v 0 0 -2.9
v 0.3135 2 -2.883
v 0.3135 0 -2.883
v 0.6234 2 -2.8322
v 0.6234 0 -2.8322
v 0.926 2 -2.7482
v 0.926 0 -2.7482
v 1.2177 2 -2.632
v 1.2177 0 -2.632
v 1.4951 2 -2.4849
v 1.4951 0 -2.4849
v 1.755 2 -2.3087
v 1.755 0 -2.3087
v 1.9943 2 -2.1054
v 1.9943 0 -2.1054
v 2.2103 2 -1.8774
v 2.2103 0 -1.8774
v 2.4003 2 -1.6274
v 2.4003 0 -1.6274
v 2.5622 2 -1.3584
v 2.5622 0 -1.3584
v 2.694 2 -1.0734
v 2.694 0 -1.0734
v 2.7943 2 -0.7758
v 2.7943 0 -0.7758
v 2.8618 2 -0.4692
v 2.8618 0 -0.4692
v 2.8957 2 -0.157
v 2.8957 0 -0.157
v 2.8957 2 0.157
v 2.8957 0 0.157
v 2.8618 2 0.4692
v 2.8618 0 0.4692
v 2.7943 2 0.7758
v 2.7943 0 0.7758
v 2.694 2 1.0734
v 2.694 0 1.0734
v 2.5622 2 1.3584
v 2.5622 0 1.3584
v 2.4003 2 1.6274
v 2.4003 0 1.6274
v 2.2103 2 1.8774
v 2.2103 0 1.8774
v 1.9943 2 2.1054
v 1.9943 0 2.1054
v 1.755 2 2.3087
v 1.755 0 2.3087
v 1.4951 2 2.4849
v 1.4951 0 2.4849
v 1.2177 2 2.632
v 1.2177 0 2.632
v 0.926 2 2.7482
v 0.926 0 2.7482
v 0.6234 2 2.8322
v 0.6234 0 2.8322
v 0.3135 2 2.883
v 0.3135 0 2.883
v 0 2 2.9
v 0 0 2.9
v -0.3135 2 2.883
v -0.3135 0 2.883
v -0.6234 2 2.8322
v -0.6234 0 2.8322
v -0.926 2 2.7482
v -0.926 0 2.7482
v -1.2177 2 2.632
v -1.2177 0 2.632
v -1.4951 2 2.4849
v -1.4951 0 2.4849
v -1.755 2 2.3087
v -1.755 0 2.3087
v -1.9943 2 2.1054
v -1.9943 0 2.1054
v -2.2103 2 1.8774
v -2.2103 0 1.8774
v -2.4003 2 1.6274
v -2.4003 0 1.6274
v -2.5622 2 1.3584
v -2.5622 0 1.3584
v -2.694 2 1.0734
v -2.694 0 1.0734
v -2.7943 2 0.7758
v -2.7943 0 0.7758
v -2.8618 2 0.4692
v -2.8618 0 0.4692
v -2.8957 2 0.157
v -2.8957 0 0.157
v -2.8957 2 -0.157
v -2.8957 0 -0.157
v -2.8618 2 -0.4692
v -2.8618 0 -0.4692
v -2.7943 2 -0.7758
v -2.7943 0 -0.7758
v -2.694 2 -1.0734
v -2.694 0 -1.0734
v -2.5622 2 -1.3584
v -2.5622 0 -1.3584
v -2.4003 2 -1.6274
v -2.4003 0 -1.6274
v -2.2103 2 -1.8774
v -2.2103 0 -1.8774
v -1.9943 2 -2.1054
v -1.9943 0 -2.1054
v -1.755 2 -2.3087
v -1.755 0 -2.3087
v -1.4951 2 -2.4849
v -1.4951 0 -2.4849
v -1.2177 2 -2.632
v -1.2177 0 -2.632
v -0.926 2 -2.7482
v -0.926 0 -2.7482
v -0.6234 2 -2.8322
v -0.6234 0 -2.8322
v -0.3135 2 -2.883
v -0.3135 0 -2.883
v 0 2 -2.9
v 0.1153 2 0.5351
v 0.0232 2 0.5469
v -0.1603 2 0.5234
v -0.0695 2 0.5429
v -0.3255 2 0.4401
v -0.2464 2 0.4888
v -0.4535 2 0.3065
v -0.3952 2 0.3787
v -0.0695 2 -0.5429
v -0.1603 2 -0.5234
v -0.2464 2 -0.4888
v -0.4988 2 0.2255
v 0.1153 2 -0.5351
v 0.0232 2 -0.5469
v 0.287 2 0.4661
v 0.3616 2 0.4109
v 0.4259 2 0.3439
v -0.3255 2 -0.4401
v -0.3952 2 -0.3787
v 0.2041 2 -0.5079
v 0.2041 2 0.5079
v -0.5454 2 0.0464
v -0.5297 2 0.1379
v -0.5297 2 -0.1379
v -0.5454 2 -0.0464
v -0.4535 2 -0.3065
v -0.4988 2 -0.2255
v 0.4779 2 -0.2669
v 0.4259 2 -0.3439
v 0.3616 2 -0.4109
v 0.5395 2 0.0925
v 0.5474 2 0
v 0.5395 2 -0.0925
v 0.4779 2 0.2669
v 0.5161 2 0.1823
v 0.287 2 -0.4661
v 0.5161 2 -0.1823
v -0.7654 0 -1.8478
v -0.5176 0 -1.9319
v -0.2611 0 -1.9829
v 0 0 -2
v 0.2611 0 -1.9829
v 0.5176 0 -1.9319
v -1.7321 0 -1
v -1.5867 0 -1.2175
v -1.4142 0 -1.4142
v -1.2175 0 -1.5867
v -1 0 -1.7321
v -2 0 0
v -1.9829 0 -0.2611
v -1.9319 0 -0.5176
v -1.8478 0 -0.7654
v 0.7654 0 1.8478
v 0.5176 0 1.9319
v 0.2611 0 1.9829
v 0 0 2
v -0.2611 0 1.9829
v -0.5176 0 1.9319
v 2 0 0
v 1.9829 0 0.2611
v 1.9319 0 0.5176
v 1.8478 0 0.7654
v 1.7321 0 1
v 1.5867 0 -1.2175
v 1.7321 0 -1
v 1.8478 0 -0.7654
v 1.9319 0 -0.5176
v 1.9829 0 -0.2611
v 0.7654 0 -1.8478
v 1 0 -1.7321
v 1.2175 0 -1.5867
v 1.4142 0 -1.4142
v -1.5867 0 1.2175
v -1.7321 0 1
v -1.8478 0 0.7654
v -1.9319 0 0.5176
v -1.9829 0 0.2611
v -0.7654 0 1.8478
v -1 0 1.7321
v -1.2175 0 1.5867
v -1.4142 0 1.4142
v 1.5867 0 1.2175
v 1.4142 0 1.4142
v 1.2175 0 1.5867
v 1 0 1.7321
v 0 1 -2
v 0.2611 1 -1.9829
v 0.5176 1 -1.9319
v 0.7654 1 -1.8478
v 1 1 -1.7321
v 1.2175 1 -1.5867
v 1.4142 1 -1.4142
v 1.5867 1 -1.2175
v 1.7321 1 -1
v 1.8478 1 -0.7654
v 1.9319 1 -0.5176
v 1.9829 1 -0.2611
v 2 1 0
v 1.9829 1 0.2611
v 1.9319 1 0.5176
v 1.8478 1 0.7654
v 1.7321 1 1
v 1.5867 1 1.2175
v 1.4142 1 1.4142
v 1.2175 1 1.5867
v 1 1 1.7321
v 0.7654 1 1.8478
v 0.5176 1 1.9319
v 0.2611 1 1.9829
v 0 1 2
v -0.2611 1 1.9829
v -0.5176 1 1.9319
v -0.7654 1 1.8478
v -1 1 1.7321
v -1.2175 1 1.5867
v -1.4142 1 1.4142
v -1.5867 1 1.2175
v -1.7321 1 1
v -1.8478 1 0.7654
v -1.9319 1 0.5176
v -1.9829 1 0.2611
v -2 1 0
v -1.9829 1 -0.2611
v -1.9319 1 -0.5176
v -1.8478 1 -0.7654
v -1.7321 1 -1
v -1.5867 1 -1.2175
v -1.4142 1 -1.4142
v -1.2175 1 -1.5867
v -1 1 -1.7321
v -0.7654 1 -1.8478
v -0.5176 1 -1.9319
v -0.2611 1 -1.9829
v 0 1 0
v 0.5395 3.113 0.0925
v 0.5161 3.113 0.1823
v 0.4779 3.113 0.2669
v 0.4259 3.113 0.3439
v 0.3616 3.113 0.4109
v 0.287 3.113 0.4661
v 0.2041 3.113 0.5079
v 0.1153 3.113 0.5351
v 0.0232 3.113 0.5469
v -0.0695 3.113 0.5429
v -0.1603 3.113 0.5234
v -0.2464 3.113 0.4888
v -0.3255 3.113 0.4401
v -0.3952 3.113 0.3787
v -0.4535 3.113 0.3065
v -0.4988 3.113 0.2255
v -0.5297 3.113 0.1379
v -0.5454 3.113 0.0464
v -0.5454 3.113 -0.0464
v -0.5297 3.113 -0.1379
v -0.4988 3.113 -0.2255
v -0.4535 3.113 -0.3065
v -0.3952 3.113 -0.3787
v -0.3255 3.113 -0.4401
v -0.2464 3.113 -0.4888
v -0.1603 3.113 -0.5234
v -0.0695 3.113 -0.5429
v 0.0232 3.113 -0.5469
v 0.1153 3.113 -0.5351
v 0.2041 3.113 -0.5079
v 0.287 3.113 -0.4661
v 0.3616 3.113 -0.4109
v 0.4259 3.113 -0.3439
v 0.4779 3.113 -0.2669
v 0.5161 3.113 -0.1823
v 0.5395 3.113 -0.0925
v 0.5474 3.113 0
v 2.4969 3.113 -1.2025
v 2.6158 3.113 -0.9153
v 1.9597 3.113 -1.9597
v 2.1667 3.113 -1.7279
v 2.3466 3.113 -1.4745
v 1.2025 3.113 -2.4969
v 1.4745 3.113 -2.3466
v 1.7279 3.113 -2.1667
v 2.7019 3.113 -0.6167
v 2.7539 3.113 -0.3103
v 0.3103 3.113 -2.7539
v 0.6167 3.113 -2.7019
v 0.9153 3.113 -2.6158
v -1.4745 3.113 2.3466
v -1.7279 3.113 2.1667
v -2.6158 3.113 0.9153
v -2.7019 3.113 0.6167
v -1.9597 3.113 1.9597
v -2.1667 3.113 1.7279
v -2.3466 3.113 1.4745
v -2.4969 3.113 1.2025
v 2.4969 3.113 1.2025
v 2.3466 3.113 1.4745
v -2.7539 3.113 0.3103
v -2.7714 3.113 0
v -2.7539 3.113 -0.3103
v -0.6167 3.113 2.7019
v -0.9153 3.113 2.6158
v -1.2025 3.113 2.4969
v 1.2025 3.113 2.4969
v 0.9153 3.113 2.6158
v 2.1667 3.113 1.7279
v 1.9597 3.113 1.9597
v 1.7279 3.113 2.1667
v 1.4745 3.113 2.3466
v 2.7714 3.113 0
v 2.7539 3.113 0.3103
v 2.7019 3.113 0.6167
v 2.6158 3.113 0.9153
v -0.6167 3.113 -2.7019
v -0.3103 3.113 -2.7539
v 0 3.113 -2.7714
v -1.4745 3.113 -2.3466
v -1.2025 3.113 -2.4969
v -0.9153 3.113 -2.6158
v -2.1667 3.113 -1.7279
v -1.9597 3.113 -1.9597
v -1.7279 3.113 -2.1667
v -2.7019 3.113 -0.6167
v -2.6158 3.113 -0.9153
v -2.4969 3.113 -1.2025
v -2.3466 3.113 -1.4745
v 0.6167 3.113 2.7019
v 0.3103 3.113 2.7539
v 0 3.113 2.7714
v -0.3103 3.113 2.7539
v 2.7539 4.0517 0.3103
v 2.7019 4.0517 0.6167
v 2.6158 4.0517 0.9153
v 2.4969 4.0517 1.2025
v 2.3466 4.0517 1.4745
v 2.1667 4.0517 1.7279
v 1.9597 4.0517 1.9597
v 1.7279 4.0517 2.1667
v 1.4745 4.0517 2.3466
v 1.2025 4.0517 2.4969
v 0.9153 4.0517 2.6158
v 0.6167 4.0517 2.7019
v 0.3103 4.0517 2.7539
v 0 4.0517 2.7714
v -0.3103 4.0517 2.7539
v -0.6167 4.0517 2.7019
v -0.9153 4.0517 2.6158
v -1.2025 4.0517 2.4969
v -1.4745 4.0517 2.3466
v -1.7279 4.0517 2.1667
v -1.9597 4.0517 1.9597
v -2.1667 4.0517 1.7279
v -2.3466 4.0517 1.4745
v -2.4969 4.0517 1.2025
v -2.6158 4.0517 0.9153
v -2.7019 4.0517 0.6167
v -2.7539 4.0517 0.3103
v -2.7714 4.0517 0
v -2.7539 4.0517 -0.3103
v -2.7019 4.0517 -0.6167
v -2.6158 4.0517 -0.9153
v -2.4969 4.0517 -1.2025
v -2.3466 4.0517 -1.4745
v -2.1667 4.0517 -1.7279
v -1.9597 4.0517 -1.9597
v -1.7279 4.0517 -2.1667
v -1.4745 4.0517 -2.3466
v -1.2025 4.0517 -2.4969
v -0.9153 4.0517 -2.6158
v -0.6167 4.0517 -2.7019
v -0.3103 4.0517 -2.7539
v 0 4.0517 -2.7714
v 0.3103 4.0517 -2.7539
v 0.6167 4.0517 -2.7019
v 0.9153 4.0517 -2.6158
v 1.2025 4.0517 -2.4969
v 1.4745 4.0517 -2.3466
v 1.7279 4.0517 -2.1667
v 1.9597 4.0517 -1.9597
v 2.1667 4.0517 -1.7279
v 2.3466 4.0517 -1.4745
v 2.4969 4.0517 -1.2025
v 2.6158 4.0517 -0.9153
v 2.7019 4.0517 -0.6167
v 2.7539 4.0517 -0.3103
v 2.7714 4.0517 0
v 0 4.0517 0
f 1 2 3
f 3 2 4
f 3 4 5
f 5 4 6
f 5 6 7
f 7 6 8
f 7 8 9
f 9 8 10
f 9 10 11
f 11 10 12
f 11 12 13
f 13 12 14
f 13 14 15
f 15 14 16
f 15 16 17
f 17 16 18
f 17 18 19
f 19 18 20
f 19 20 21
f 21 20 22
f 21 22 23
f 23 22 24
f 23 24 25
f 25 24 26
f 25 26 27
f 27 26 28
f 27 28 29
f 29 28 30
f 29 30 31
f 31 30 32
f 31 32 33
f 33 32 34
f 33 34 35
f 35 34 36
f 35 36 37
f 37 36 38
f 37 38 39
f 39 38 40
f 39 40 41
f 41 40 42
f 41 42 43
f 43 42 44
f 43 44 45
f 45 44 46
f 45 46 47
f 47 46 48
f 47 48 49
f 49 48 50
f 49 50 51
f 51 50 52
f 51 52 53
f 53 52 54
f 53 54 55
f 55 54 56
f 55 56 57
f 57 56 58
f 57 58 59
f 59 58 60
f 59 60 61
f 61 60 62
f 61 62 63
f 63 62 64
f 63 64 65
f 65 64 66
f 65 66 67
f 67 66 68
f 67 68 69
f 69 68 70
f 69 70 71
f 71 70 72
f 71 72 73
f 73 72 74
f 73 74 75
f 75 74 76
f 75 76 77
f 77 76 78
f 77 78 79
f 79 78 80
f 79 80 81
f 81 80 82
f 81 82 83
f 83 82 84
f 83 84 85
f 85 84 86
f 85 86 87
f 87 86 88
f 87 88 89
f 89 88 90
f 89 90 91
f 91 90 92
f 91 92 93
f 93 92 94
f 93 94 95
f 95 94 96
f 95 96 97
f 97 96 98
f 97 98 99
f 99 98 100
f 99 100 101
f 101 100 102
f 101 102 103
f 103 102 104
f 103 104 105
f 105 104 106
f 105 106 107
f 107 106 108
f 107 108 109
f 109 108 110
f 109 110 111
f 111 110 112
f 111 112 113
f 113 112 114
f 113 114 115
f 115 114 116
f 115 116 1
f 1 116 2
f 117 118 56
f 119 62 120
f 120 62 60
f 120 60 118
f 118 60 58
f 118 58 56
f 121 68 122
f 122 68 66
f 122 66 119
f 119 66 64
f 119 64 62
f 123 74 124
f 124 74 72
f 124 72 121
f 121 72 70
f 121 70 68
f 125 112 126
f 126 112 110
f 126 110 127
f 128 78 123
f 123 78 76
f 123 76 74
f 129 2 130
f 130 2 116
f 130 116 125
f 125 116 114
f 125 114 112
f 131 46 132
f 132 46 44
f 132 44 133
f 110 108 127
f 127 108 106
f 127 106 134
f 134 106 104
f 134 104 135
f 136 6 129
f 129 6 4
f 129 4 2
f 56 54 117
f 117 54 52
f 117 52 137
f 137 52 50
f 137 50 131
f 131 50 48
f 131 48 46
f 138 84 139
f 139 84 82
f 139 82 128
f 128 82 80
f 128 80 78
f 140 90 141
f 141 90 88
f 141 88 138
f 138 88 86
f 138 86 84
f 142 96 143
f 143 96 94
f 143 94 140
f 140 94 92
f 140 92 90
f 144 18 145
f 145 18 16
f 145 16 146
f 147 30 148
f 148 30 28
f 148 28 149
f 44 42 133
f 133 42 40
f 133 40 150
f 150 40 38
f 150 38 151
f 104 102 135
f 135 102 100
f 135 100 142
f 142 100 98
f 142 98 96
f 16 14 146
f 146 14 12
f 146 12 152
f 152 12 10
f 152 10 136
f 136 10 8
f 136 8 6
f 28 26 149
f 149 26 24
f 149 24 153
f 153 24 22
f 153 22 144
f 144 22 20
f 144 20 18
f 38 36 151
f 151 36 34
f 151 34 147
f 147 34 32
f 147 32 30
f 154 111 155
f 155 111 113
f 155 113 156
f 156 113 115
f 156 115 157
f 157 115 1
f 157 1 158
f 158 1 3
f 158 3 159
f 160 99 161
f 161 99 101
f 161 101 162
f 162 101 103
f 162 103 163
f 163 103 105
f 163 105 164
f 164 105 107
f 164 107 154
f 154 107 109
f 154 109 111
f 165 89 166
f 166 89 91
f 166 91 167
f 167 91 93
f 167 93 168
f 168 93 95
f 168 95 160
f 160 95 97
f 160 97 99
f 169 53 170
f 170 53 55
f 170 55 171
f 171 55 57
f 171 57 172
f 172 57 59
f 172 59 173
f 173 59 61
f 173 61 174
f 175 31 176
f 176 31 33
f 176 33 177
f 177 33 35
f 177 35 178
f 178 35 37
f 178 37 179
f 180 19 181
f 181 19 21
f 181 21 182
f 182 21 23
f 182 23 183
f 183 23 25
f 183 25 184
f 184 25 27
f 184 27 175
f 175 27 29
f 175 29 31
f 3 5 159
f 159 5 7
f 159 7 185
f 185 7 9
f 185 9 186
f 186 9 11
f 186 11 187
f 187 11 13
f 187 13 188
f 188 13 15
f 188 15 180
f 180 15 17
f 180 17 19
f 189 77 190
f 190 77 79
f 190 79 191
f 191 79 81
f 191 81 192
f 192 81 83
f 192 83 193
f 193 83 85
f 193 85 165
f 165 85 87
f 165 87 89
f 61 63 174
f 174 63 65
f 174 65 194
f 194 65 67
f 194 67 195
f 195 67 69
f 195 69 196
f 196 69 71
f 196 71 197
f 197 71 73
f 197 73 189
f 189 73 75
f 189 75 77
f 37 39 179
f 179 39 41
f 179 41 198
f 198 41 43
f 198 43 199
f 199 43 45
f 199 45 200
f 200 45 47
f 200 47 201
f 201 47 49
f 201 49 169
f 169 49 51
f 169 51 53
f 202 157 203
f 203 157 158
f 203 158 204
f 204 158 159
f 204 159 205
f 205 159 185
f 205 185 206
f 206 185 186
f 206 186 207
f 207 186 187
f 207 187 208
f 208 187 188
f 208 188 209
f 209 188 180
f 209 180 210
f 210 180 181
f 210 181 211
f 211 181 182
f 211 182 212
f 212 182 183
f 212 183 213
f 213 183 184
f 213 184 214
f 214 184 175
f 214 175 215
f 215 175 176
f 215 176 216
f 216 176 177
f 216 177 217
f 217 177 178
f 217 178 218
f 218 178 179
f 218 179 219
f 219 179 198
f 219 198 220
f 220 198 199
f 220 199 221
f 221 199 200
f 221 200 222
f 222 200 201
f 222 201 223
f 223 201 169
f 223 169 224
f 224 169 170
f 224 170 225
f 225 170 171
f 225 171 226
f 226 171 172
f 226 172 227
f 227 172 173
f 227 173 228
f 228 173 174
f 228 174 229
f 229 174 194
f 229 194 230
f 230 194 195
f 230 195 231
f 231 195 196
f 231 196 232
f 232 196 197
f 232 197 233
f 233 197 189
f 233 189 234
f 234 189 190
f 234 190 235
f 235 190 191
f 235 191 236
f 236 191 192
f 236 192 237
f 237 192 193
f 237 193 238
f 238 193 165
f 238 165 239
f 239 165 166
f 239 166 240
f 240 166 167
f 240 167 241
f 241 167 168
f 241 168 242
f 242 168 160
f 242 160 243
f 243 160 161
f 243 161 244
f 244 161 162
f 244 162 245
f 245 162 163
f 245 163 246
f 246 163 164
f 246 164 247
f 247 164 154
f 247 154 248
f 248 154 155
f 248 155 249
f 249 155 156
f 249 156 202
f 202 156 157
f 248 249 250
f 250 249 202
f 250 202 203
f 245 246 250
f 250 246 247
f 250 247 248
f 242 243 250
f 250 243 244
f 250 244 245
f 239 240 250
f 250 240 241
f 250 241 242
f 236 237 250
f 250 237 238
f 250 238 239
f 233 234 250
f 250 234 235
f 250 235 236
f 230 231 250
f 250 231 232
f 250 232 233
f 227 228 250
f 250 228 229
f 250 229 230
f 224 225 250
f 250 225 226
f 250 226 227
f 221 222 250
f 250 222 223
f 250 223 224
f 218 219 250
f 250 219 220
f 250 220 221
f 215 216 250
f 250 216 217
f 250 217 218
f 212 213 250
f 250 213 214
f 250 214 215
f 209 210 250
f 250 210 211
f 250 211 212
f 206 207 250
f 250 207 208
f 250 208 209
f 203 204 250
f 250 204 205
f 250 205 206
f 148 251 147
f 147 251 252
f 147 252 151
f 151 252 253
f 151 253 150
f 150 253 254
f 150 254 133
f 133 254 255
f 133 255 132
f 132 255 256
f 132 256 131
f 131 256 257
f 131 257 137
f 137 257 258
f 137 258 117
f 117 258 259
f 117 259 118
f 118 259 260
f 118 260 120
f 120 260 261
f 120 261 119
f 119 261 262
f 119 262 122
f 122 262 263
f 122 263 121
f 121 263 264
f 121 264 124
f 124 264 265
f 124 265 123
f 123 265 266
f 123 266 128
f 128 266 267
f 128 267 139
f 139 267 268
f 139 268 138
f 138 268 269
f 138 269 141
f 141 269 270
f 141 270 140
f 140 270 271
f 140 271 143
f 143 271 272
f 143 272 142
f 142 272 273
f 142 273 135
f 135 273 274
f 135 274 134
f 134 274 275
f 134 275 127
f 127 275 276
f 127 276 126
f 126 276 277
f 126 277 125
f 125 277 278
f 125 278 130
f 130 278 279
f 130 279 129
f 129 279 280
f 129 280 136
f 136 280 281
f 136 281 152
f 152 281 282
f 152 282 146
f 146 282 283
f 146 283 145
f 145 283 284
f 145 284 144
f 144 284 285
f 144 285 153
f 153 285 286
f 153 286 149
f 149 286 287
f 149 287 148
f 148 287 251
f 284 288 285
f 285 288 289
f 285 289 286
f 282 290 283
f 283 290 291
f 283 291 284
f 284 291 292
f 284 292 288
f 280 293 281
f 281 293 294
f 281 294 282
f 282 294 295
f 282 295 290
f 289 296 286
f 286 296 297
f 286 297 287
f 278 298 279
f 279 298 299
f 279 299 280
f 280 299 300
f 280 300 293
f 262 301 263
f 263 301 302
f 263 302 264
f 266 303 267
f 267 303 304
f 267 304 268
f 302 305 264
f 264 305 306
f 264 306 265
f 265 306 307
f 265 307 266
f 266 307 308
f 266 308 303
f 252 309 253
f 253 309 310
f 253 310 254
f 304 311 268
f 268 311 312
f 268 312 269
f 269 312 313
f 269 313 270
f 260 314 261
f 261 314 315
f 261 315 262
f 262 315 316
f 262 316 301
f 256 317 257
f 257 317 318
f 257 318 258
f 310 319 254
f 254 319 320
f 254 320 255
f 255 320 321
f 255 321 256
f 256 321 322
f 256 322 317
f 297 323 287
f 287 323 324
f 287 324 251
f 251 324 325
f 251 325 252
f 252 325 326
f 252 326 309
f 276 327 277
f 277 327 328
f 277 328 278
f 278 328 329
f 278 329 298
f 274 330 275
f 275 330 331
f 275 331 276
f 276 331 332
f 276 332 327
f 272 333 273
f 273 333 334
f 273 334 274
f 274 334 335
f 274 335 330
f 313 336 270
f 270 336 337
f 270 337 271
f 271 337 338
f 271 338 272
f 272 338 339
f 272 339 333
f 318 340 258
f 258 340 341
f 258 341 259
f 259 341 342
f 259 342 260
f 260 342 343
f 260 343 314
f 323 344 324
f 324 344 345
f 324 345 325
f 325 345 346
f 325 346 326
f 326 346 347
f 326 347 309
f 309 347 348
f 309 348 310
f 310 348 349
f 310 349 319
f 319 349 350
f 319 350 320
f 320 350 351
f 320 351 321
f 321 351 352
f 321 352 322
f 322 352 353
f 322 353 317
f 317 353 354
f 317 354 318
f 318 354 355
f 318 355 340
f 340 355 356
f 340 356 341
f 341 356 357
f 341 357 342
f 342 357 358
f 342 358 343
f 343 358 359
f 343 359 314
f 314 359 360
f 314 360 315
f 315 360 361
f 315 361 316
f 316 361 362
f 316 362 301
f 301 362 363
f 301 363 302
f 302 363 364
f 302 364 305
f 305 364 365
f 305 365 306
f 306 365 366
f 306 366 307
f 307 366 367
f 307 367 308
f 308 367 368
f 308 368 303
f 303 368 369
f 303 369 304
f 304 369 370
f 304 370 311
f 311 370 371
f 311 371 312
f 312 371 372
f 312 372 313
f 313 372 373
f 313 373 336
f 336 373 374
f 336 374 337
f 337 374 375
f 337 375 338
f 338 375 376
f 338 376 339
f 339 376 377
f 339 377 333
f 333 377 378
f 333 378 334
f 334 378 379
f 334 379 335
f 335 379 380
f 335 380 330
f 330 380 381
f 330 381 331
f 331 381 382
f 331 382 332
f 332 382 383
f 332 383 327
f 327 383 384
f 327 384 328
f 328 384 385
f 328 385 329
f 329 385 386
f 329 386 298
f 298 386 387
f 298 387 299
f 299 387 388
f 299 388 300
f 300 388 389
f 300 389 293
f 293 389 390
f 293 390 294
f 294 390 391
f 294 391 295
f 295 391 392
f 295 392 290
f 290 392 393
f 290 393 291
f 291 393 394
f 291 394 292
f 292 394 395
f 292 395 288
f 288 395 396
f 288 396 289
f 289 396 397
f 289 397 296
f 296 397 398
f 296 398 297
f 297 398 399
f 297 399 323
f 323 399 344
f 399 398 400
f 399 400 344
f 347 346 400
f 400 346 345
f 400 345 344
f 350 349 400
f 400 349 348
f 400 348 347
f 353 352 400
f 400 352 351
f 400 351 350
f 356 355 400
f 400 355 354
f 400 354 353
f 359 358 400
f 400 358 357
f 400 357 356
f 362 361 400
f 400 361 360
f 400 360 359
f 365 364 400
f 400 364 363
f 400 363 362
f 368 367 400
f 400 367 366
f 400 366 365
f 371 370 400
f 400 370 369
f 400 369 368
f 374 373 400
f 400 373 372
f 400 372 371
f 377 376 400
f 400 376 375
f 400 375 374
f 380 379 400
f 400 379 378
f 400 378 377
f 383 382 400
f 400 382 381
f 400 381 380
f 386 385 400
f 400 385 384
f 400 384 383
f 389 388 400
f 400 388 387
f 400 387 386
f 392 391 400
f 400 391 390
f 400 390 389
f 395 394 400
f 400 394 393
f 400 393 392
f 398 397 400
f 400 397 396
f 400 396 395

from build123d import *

# Parameters (mm, degrees)
SKETCH1_R           = 2.9
BOSS_EXTRUDE1_DEPTH = 2
SKETCH2_R           = 2
CUT_EXTRUDE1_DEPTH  = 1


with BuildPart() as part:
    # Sketch1 → Boss-Extrude1 (new body)
    with BuildSketch(Plane(origin=(0, 0, 0), x_dir=(1, 0, 0), z_dir=(0, 1, 0))):
        with Locations(Location((0, 0, 0), (0, 0, 270))):
            Circle(SKETCH1_R)
    extrude(amount=BOSS_EXTRUDE1_DEPTH)

    # Sketch2 → Cut-Extrude1 (cut)
    with BuildSketch(Plane.XZ):
        with Locations(Location((0, 0, 0), (0, 0, 270))):
            Circle(SKETCH2_R)
    extrude(amount=-CUT_EXTRUDE1_DEPTH, mode=Mode.SUBTRACT)

    # Sketch3 → Revolve4 (revolve)
    with BuildSketch(Plane.XY, mode=Mode.PRIVATE) as revolve4_sk:
        Polygon((-2.771365676, 3.112953388), (-0.547366303, 3.112953388), (-0.547366303, 2), (0, 2), (0, 4.051740853), (-2.771365676, 4.051740853), align=None)
    revolve(revolve4_sk.sketch.rotate(Axis((0, 2, 0), (0, 1, 0)), 180), axis=Axis((0, 2, 0), (0, 1, 0)))


solid = part.part
